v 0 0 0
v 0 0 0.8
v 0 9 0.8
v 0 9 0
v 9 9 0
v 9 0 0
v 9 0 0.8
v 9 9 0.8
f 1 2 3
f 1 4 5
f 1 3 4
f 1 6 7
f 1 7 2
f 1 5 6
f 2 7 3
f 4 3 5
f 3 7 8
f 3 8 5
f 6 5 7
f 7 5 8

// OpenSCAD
/* Warning, this is a very basic generator with a lot of approximation 
input data : [WFBGA, SZX, 9x9x0.8mm, 144, , B, C04-00380B]
generated by com.zoubworld.electronics.cad.model3d.Basic
Date : Sun Feb 15 10:50:48 CET 2026
*/

//body
color("black")
translate([0,0,0])
cube([9.0,9.0,0.8], center=false);
